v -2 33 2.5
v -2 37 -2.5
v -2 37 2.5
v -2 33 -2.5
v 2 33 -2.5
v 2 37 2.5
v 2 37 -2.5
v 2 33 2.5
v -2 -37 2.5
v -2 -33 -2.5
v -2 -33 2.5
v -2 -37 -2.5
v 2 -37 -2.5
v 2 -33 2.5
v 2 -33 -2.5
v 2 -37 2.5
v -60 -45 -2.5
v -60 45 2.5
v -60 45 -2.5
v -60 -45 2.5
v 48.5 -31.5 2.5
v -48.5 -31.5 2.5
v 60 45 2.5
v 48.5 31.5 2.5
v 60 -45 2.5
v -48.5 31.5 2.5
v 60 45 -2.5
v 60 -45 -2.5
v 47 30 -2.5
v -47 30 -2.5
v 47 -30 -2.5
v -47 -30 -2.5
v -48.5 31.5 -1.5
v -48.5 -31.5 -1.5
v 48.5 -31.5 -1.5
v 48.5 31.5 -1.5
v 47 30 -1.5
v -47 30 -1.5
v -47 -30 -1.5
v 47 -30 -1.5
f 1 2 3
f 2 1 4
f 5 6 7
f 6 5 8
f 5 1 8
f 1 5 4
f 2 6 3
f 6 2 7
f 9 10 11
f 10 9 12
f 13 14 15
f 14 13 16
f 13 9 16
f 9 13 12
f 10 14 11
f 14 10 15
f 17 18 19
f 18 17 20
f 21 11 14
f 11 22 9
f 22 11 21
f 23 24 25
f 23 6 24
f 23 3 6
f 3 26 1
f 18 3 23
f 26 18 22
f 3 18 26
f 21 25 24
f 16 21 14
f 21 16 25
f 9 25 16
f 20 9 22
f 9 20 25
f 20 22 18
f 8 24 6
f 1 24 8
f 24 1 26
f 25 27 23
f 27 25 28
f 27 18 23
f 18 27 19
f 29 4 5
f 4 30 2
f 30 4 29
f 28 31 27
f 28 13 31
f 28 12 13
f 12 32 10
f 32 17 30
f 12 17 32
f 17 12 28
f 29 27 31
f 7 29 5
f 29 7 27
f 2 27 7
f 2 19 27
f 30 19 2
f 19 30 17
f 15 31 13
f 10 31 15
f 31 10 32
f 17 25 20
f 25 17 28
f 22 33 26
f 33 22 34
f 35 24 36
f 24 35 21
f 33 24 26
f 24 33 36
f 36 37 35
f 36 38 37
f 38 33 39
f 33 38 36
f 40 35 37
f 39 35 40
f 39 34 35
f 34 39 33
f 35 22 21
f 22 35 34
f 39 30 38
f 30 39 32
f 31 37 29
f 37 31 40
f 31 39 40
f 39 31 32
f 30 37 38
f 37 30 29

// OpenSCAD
// Generated by SolidPython 1.1.3 on 2024-01-11 16:09:33


difference() {
	cube(center = true, size = [120, 90, 5]);
	translate(v = [0, 0, 1]) {
		cube(center = true, size = [97, 63, 5]);
	}
	cube(center = true, size = [94, 60, 10]);
	union() {
		union();
		translate(v = [0, 35.0000000000, 0]) {
			cube(center = true, size = [4, 4, 10]);
		}
		translate(v = [0, -35.0000000000, 0]) {
			cube(center = true, size = [4, 4, 10]);
		}
	}
	union() {
		union();
		translate(v = [0, 35.0000000000, 0]) {
			cube(center = true, size = [4, 4, 10]);
		}
		translate(v = [0, -35.0000000000, 0]) {
			cube(center = true, size = [4, 4, 10]);
		}
	}
}
/***********************************************
*********      SolidPython code:      **********
************************************************
 
#! /usr/bin/env python3
import sys
from math import cos, radians, sin, pi, tau
from pathlib import Path

from solid import *
from solid.utils import *

from typing import Set, Sequence, List, Callable, Optional, Union, Iterable, Tuple

import numpy as np

import extrusion_fittings as ef

class mount():
	def __init__(self,board_length = 97,board_width = 63,plate_length = 120,plate_width = 90, mount_thickness = 5,
					fan_gap_length = 94,fan_gap_width = 60):
		self.board_length = board_length
		self.board_width = board_width
		self.plate_length = plate_length
		self.plate_width = plate_width
		self.mount_thickness = mount_thickness
		self.fan_gap_length = fan_gap_length
		self.fan_gap_width = fan_gap_width

	def ziptie_cutouts(self) -> OpenSCADObject:
		zc = cube([4,4,self.mount_thickness*2],center = True)
		cutouts = OpenSCADObject(name="union",params={})
		cutouts += translate([0,(self.plate_width - 20)/2,0])(zc)
		cutouts += translate([0,(self.plate_width - 20)/-2,0])(zc)
		return cutouts

	def plate(self) -> OpenSCADObject:
		p = cube([self.plate_length,self.plate_width,self.mount_thickness],center = True)
		fan_cutout = cube([self.fan_gap_length,self.fan_gap_width,self.mount_thickness*2], center = True)
		cutout = cube([self.board_length,self.board_width,self.mount_thickness],center = True)
		cutout = translate([0,0,1])(cutout)		
		p -= cutout
		p -= fan_cutout
		p -= self.ziptie_cutouts()
		return p

	def bisect_floor(self,input) -> OpenSCADObject:
		size = 300
		floor = translate([0,0,-150])(cube([300,300,300],center = True))
		return input - floor


if __name__ == "__main__":
	out_dir = sys.argv[1] if len(sys.argv) > 1 else Path(__file__).parent

	# e = ef.Fittings(35)
	# a = e.tube()
	m = mount()	
	# a = translate([0,64,-11])(a)
	a = m.plate()
	a -= m.ziptie_cutouts()
	# a = m.bisect_floor(a)

	file_out = scad_render_to_file(a,  out_dir=out_dir, include_orig_code=True)
	print(f"{__file__}: SCAD file written to: \n{file_out}")
 
 
************************************************/
